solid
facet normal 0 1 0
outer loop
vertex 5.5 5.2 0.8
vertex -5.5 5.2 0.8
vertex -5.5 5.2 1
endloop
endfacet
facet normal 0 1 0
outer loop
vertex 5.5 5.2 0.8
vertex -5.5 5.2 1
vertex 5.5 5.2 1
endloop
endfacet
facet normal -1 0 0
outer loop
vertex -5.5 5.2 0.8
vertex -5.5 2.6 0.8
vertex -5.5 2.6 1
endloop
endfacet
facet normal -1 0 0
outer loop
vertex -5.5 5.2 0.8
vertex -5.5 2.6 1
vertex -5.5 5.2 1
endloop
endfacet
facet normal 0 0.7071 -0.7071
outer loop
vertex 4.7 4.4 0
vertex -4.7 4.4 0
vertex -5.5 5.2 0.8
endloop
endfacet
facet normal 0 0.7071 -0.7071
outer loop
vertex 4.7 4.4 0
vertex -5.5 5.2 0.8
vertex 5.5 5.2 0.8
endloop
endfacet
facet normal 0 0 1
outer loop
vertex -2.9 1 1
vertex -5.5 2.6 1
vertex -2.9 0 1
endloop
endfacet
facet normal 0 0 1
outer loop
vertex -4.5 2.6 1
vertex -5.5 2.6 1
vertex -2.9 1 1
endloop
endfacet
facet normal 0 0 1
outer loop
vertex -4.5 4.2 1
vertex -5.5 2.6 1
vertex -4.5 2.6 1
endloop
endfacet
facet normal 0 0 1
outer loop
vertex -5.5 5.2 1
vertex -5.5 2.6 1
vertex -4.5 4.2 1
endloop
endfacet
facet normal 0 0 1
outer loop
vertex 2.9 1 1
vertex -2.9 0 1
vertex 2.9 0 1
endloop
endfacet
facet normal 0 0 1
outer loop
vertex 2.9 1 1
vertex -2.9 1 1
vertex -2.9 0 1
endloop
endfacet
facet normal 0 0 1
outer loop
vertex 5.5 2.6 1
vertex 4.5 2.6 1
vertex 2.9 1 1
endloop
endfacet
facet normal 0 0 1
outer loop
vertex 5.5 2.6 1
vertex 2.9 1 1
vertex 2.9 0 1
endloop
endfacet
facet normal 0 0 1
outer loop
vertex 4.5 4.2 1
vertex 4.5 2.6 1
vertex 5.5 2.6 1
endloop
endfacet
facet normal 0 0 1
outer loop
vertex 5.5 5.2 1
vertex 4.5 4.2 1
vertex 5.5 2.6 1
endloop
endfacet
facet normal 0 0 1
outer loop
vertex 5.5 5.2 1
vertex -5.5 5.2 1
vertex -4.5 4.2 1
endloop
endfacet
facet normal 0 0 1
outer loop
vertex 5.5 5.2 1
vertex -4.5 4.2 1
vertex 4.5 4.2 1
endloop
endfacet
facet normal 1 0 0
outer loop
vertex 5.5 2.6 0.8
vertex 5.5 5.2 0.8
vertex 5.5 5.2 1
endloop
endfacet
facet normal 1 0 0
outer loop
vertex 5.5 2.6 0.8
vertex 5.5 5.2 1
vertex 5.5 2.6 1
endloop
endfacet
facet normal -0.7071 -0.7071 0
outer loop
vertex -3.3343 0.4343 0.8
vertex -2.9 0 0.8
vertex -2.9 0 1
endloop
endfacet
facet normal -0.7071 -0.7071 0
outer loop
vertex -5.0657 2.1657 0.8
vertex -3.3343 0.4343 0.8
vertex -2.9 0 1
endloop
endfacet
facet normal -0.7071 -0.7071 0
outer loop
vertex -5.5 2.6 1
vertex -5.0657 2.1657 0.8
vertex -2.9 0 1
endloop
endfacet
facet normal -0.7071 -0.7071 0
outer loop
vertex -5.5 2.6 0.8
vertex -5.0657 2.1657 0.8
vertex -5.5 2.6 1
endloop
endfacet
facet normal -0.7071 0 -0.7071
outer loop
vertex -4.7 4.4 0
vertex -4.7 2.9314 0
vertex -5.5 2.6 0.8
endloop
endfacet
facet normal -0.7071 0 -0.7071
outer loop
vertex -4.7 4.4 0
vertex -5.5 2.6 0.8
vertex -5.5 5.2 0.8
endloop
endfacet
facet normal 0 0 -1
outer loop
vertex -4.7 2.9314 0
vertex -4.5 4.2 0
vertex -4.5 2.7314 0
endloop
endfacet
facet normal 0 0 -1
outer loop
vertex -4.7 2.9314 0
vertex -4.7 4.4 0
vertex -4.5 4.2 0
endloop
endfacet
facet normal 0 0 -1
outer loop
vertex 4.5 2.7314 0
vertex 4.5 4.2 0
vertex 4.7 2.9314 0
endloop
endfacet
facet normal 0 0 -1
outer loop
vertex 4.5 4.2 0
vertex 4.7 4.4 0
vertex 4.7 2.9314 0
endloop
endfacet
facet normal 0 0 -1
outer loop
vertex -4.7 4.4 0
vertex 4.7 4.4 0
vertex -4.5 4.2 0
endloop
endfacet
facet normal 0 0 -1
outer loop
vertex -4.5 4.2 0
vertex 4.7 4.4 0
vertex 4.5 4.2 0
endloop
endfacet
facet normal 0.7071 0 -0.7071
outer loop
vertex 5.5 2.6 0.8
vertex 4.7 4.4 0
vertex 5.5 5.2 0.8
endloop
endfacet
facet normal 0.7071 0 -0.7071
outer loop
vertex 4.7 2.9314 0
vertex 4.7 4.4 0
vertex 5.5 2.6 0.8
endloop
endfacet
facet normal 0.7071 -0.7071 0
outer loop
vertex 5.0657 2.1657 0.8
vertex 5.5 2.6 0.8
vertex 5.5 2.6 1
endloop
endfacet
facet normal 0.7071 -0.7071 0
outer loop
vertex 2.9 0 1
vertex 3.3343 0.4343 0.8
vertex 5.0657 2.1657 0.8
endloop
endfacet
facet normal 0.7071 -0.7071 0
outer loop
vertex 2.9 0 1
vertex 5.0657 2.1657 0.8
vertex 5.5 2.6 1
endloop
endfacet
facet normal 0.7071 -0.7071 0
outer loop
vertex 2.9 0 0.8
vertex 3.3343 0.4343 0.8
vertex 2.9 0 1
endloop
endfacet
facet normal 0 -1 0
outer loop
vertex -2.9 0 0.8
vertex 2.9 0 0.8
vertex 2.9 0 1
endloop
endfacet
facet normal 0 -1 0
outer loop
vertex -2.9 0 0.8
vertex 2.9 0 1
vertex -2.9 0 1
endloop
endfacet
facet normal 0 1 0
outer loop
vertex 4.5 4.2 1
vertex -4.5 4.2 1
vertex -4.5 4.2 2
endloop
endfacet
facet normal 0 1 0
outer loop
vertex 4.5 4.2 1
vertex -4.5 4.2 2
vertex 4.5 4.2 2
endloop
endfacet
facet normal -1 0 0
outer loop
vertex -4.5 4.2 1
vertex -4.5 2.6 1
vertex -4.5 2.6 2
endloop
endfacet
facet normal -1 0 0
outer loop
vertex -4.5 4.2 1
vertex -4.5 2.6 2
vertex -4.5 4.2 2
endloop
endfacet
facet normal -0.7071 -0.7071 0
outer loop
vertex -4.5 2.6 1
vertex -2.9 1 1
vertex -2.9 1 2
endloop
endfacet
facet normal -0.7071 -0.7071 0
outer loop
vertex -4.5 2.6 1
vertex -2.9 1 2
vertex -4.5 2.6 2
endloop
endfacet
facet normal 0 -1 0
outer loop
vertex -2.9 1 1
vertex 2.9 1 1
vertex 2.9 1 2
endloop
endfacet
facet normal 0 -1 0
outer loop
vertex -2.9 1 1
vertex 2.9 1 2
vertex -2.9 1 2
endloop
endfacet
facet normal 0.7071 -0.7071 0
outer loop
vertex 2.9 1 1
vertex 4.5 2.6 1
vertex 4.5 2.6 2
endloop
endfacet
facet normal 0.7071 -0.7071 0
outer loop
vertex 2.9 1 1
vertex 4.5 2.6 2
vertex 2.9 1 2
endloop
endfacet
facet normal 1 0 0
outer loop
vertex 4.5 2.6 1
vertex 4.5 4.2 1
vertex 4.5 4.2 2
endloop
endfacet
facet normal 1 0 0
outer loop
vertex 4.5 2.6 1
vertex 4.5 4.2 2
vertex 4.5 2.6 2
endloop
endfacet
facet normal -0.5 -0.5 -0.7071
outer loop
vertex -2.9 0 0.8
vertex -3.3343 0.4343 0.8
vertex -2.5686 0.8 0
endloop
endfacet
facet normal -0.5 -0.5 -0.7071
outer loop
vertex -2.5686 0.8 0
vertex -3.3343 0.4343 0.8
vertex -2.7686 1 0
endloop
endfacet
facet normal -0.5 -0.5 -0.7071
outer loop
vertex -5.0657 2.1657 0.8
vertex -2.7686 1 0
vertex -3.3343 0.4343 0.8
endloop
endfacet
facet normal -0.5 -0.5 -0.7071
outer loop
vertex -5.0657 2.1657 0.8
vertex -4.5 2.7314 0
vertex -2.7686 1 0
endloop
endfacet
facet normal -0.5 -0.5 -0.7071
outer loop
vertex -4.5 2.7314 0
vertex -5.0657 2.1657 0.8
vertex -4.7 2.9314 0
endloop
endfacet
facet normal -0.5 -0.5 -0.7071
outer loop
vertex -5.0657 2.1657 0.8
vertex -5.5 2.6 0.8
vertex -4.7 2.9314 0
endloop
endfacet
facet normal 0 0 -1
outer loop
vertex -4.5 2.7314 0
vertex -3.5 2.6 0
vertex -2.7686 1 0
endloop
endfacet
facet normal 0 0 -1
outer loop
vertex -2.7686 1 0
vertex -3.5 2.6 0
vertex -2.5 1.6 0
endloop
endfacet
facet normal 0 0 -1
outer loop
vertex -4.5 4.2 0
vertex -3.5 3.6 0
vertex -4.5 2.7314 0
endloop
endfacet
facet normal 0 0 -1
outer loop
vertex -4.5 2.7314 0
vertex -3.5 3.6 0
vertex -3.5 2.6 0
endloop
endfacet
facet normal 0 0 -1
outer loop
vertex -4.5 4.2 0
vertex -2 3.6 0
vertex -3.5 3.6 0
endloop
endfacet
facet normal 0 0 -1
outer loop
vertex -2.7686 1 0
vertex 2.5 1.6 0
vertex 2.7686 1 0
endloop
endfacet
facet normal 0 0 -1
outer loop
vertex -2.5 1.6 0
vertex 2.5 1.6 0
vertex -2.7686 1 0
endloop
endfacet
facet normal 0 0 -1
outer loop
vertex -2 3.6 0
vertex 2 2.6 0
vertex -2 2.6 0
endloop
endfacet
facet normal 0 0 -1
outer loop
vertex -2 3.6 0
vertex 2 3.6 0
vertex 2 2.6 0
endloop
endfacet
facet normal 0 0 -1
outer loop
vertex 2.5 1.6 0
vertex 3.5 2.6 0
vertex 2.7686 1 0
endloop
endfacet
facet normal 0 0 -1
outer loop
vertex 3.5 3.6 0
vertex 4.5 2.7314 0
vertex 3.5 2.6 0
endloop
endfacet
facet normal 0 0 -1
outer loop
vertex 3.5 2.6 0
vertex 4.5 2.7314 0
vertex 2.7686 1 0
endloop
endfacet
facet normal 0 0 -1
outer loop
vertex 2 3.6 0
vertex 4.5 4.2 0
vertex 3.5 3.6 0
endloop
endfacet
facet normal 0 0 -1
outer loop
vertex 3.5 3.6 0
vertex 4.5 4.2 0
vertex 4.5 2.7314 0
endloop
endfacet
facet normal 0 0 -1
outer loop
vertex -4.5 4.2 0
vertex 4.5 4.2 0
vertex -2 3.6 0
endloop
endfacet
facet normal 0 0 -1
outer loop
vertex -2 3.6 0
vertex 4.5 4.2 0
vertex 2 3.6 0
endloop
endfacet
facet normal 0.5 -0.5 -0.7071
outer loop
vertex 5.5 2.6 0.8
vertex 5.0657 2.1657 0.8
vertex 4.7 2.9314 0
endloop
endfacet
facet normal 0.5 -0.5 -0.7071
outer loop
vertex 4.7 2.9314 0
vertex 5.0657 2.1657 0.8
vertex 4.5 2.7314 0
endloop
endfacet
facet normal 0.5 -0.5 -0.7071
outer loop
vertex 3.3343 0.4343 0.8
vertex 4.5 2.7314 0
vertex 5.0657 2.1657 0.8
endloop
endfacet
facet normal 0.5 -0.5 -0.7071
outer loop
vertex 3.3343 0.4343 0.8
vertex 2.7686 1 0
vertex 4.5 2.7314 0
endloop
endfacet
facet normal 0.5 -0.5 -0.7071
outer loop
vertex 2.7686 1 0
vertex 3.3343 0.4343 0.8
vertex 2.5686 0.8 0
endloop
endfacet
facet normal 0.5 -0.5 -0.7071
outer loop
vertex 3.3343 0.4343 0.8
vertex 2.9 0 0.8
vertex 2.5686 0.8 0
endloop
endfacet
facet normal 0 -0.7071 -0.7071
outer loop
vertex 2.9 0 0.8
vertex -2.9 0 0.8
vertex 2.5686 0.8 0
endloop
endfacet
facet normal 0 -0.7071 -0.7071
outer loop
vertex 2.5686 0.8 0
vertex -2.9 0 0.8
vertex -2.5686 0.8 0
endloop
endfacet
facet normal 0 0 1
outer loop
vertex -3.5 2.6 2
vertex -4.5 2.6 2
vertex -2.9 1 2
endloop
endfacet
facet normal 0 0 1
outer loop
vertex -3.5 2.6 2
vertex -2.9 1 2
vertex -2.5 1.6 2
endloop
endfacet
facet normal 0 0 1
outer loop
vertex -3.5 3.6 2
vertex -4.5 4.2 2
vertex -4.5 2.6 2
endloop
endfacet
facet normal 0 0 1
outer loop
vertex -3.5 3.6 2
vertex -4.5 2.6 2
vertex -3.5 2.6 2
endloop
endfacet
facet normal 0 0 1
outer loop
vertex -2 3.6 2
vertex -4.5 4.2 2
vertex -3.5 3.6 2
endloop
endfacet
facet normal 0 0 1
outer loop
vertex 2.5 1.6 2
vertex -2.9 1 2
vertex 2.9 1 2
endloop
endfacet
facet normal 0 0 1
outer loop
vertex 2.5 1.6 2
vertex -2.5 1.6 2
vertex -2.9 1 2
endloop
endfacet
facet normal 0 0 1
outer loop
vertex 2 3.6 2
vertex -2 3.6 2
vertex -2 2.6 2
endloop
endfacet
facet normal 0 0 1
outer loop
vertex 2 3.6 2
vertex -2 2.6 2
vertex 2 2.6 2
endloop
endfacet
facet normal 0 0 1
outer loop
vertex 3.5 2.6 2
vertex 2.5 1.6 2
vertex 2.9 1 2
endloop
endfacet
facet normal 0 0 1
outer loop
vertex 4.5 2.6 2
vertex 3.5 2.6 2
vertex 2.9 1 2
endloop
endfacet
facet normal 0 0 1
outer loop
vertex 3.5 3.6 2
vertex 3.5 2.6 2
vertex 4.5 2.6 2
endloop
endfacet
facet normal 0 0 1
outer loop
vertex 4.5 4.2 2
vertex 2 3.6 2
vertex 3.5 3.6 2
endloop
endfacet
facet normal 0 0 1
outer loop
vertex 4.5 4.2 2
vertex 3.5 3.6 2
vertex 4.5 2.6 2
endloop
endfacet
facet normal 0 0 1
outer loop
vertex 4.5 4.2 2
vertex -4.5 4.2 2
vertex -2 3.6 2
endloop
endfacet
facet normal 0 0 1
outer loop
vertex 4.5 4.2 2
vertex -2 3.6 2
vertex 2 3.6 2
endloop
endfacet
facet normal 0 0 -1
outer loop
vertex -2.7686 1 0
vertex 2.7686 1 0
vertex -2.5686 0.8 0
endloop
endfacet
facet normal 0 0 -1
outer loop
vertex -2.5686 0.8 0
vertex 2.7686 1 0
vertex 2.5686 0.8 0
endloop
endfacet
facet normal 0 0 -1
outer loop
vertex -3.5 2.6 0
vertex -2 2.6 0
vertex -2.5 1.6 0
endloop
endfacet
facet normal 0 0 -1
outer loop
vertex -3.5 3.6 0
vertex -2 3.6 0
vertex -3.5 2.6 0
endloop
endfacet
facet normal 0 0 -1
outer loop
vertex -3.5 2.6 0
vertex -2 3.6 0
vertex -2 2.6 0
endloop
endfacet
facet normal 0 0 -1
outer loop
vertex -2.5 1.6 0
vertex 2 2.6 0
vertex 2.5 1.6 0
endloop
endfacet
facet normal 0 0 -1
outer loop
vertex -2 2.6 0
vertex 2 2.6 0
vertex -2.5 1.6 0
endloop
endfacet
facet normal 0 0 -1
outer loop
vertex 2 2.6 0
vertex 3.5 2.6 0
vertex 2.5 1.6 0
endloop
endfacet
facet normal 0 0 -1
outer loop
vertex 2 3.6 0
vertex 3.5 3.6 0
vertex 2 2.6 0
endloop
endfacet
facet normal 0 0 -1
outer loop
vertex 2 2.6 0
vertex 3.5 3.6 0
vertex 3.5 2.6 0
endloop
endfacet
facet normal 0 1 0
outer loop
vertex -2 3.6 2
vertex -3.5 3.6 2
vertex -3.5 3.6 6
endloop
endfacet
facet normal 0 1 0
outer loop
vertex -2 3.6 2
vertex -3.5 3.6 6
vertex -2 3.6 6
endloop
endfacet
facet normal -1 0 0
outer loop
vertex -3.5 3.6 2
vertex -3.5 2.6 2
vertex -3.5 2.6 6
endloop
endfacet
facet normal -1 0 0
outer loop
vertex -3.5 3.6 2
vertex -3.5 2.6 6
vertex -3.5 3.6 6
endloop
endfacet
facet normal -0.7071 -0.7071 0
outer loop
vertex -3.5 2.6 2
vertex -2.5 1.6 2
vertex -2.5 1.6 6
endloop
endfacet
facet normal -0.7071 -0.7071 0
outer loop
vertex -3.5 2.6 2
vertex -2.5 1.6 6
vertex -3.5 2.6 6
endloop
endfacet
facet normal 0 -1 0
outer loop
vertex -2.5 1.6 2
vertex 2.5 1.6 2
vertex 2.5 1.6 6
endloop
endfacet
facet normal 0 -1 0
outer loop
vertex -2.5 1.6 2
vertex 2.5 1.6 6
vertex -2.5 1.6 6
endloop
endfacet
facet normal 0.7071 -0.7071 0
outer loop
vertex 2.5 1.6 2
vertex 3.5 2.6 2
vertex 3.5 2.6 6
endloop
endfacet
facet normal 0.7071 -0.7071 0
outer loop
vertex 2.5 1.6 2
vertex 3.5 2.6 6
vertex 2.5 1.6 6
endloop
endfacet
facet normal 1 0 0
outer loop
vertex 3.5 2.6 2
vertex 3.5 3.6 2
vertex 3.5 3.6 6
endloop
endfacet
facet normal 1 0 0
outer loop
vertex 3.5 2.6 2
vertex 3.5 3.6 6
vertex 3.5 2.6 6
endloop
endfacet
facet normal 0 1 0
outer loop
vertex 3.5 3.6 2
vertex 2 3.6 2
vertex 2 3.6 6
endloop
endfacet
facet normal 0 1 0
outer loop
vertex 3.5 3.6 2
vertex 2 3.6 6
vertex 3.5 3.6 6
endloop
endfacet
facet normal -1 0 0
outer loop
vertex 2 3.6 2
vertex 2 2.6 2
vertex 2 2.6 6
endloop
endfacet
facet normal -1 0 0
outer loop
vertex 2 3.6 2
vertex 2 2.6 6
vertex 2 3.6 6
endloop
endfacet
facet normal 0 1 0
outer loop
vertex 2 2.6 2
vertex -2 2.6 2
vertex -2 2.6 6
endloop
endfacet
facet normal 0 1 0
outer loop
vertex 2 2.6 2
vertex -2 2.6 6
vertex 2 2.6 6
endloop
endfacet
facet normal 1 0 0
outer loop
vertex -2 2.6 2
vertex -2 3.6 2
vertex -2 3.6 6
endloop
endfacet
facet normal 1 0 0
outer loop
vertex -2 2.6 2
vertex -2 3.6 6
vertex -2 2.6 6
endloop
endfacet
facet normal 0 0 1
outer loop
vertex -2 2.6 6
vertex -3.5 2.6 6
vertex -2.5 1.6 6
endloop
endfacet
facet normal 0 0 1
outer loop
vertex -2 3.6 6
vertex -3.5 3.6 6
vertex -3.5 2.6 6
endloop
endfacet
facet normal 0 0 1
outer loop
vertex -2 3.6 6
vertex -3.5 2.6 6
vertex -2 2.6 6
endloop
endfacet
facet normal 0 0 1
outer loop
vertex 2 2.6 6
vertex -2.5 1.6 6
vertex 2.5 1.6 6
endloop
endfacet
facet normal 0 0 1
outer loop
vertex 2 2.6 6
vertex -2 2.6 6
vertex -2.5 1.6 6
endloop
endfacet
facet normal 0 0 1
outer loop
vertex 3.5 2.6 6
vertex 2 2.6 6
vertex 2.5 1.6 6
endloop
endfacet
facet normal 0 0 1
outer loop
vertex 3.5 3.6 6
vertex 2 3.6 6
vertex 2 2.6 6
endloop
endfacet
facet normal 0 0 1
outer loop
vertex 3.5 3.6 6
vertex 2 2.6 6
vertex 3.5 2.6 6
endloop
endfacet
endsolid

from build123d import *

# Parameters (mm, degrees)
EXTRUDE001_DEPTH = 2
EXTRUDE002_DEPTH = 6
EXTRUDE_DEPTH    = 1
CHAMFER_SIZE     = 0.8


with BuildPart() as extrude001:
    # Sketch001 → Extrude001 (new body)
    with BuildSketch(Plane.XY):
        Polygon((-4.5, 4.2), (4.5, 4.2), (4.5, 2.6), (2.9, 1), (-2.9, 1), (-4.5, 2.6), align=None)
    extrude(amount=EXTRUDE001_DEPTH)


with BuildPart() as extrude002:
    # Sketch002 → Extrude002 (new body)
    with BuildSketch(Plane.XY):
        Polygon((-3.5, 3.6), (-2, 3.6), (-2, 2.6), (2, 2.6), (2, 3.6), (3.5, 3.6), (3.5, 2.6), (2.5, 1.6), (-2.5, 1.6), (-3.5, 2.6), align=None)
    extrude(amount=EXTRUDE002_DEPTH)


with BuildPart() as chamfer_body:
    # Sketch → Extrude (new body)
    with BuildSketch(Plane.XY):
        Polygon((-5.5, 5.2), (5.5, 5.2), (5.5, 2.6), (2.9, 0), (-2.9, 0), (-5.5, 2.6), align=None)
    extrude(amount=EXTRUDE_DEPTH)

    # Fusion: union Extrude001, Extrude002
    add(extrude001.part)
    add(extrude002.part)

    # Chamfer
    chamfer_edges = [chamfer_body.edges().sort_by_distance(p)[0] for p in [
        (0, 5.2, 0),
        (-5.5, 3.9, 0),
        (5.5, 3.9, 0),
        (-4.2, 1.3, 0),
        (4.2, 1.3, 0),
        (0, 0, 0),
    ]]
    chamfer(chamfer_edges, length=CHAMFER_SIZE)


solid = chamfer_body.part
